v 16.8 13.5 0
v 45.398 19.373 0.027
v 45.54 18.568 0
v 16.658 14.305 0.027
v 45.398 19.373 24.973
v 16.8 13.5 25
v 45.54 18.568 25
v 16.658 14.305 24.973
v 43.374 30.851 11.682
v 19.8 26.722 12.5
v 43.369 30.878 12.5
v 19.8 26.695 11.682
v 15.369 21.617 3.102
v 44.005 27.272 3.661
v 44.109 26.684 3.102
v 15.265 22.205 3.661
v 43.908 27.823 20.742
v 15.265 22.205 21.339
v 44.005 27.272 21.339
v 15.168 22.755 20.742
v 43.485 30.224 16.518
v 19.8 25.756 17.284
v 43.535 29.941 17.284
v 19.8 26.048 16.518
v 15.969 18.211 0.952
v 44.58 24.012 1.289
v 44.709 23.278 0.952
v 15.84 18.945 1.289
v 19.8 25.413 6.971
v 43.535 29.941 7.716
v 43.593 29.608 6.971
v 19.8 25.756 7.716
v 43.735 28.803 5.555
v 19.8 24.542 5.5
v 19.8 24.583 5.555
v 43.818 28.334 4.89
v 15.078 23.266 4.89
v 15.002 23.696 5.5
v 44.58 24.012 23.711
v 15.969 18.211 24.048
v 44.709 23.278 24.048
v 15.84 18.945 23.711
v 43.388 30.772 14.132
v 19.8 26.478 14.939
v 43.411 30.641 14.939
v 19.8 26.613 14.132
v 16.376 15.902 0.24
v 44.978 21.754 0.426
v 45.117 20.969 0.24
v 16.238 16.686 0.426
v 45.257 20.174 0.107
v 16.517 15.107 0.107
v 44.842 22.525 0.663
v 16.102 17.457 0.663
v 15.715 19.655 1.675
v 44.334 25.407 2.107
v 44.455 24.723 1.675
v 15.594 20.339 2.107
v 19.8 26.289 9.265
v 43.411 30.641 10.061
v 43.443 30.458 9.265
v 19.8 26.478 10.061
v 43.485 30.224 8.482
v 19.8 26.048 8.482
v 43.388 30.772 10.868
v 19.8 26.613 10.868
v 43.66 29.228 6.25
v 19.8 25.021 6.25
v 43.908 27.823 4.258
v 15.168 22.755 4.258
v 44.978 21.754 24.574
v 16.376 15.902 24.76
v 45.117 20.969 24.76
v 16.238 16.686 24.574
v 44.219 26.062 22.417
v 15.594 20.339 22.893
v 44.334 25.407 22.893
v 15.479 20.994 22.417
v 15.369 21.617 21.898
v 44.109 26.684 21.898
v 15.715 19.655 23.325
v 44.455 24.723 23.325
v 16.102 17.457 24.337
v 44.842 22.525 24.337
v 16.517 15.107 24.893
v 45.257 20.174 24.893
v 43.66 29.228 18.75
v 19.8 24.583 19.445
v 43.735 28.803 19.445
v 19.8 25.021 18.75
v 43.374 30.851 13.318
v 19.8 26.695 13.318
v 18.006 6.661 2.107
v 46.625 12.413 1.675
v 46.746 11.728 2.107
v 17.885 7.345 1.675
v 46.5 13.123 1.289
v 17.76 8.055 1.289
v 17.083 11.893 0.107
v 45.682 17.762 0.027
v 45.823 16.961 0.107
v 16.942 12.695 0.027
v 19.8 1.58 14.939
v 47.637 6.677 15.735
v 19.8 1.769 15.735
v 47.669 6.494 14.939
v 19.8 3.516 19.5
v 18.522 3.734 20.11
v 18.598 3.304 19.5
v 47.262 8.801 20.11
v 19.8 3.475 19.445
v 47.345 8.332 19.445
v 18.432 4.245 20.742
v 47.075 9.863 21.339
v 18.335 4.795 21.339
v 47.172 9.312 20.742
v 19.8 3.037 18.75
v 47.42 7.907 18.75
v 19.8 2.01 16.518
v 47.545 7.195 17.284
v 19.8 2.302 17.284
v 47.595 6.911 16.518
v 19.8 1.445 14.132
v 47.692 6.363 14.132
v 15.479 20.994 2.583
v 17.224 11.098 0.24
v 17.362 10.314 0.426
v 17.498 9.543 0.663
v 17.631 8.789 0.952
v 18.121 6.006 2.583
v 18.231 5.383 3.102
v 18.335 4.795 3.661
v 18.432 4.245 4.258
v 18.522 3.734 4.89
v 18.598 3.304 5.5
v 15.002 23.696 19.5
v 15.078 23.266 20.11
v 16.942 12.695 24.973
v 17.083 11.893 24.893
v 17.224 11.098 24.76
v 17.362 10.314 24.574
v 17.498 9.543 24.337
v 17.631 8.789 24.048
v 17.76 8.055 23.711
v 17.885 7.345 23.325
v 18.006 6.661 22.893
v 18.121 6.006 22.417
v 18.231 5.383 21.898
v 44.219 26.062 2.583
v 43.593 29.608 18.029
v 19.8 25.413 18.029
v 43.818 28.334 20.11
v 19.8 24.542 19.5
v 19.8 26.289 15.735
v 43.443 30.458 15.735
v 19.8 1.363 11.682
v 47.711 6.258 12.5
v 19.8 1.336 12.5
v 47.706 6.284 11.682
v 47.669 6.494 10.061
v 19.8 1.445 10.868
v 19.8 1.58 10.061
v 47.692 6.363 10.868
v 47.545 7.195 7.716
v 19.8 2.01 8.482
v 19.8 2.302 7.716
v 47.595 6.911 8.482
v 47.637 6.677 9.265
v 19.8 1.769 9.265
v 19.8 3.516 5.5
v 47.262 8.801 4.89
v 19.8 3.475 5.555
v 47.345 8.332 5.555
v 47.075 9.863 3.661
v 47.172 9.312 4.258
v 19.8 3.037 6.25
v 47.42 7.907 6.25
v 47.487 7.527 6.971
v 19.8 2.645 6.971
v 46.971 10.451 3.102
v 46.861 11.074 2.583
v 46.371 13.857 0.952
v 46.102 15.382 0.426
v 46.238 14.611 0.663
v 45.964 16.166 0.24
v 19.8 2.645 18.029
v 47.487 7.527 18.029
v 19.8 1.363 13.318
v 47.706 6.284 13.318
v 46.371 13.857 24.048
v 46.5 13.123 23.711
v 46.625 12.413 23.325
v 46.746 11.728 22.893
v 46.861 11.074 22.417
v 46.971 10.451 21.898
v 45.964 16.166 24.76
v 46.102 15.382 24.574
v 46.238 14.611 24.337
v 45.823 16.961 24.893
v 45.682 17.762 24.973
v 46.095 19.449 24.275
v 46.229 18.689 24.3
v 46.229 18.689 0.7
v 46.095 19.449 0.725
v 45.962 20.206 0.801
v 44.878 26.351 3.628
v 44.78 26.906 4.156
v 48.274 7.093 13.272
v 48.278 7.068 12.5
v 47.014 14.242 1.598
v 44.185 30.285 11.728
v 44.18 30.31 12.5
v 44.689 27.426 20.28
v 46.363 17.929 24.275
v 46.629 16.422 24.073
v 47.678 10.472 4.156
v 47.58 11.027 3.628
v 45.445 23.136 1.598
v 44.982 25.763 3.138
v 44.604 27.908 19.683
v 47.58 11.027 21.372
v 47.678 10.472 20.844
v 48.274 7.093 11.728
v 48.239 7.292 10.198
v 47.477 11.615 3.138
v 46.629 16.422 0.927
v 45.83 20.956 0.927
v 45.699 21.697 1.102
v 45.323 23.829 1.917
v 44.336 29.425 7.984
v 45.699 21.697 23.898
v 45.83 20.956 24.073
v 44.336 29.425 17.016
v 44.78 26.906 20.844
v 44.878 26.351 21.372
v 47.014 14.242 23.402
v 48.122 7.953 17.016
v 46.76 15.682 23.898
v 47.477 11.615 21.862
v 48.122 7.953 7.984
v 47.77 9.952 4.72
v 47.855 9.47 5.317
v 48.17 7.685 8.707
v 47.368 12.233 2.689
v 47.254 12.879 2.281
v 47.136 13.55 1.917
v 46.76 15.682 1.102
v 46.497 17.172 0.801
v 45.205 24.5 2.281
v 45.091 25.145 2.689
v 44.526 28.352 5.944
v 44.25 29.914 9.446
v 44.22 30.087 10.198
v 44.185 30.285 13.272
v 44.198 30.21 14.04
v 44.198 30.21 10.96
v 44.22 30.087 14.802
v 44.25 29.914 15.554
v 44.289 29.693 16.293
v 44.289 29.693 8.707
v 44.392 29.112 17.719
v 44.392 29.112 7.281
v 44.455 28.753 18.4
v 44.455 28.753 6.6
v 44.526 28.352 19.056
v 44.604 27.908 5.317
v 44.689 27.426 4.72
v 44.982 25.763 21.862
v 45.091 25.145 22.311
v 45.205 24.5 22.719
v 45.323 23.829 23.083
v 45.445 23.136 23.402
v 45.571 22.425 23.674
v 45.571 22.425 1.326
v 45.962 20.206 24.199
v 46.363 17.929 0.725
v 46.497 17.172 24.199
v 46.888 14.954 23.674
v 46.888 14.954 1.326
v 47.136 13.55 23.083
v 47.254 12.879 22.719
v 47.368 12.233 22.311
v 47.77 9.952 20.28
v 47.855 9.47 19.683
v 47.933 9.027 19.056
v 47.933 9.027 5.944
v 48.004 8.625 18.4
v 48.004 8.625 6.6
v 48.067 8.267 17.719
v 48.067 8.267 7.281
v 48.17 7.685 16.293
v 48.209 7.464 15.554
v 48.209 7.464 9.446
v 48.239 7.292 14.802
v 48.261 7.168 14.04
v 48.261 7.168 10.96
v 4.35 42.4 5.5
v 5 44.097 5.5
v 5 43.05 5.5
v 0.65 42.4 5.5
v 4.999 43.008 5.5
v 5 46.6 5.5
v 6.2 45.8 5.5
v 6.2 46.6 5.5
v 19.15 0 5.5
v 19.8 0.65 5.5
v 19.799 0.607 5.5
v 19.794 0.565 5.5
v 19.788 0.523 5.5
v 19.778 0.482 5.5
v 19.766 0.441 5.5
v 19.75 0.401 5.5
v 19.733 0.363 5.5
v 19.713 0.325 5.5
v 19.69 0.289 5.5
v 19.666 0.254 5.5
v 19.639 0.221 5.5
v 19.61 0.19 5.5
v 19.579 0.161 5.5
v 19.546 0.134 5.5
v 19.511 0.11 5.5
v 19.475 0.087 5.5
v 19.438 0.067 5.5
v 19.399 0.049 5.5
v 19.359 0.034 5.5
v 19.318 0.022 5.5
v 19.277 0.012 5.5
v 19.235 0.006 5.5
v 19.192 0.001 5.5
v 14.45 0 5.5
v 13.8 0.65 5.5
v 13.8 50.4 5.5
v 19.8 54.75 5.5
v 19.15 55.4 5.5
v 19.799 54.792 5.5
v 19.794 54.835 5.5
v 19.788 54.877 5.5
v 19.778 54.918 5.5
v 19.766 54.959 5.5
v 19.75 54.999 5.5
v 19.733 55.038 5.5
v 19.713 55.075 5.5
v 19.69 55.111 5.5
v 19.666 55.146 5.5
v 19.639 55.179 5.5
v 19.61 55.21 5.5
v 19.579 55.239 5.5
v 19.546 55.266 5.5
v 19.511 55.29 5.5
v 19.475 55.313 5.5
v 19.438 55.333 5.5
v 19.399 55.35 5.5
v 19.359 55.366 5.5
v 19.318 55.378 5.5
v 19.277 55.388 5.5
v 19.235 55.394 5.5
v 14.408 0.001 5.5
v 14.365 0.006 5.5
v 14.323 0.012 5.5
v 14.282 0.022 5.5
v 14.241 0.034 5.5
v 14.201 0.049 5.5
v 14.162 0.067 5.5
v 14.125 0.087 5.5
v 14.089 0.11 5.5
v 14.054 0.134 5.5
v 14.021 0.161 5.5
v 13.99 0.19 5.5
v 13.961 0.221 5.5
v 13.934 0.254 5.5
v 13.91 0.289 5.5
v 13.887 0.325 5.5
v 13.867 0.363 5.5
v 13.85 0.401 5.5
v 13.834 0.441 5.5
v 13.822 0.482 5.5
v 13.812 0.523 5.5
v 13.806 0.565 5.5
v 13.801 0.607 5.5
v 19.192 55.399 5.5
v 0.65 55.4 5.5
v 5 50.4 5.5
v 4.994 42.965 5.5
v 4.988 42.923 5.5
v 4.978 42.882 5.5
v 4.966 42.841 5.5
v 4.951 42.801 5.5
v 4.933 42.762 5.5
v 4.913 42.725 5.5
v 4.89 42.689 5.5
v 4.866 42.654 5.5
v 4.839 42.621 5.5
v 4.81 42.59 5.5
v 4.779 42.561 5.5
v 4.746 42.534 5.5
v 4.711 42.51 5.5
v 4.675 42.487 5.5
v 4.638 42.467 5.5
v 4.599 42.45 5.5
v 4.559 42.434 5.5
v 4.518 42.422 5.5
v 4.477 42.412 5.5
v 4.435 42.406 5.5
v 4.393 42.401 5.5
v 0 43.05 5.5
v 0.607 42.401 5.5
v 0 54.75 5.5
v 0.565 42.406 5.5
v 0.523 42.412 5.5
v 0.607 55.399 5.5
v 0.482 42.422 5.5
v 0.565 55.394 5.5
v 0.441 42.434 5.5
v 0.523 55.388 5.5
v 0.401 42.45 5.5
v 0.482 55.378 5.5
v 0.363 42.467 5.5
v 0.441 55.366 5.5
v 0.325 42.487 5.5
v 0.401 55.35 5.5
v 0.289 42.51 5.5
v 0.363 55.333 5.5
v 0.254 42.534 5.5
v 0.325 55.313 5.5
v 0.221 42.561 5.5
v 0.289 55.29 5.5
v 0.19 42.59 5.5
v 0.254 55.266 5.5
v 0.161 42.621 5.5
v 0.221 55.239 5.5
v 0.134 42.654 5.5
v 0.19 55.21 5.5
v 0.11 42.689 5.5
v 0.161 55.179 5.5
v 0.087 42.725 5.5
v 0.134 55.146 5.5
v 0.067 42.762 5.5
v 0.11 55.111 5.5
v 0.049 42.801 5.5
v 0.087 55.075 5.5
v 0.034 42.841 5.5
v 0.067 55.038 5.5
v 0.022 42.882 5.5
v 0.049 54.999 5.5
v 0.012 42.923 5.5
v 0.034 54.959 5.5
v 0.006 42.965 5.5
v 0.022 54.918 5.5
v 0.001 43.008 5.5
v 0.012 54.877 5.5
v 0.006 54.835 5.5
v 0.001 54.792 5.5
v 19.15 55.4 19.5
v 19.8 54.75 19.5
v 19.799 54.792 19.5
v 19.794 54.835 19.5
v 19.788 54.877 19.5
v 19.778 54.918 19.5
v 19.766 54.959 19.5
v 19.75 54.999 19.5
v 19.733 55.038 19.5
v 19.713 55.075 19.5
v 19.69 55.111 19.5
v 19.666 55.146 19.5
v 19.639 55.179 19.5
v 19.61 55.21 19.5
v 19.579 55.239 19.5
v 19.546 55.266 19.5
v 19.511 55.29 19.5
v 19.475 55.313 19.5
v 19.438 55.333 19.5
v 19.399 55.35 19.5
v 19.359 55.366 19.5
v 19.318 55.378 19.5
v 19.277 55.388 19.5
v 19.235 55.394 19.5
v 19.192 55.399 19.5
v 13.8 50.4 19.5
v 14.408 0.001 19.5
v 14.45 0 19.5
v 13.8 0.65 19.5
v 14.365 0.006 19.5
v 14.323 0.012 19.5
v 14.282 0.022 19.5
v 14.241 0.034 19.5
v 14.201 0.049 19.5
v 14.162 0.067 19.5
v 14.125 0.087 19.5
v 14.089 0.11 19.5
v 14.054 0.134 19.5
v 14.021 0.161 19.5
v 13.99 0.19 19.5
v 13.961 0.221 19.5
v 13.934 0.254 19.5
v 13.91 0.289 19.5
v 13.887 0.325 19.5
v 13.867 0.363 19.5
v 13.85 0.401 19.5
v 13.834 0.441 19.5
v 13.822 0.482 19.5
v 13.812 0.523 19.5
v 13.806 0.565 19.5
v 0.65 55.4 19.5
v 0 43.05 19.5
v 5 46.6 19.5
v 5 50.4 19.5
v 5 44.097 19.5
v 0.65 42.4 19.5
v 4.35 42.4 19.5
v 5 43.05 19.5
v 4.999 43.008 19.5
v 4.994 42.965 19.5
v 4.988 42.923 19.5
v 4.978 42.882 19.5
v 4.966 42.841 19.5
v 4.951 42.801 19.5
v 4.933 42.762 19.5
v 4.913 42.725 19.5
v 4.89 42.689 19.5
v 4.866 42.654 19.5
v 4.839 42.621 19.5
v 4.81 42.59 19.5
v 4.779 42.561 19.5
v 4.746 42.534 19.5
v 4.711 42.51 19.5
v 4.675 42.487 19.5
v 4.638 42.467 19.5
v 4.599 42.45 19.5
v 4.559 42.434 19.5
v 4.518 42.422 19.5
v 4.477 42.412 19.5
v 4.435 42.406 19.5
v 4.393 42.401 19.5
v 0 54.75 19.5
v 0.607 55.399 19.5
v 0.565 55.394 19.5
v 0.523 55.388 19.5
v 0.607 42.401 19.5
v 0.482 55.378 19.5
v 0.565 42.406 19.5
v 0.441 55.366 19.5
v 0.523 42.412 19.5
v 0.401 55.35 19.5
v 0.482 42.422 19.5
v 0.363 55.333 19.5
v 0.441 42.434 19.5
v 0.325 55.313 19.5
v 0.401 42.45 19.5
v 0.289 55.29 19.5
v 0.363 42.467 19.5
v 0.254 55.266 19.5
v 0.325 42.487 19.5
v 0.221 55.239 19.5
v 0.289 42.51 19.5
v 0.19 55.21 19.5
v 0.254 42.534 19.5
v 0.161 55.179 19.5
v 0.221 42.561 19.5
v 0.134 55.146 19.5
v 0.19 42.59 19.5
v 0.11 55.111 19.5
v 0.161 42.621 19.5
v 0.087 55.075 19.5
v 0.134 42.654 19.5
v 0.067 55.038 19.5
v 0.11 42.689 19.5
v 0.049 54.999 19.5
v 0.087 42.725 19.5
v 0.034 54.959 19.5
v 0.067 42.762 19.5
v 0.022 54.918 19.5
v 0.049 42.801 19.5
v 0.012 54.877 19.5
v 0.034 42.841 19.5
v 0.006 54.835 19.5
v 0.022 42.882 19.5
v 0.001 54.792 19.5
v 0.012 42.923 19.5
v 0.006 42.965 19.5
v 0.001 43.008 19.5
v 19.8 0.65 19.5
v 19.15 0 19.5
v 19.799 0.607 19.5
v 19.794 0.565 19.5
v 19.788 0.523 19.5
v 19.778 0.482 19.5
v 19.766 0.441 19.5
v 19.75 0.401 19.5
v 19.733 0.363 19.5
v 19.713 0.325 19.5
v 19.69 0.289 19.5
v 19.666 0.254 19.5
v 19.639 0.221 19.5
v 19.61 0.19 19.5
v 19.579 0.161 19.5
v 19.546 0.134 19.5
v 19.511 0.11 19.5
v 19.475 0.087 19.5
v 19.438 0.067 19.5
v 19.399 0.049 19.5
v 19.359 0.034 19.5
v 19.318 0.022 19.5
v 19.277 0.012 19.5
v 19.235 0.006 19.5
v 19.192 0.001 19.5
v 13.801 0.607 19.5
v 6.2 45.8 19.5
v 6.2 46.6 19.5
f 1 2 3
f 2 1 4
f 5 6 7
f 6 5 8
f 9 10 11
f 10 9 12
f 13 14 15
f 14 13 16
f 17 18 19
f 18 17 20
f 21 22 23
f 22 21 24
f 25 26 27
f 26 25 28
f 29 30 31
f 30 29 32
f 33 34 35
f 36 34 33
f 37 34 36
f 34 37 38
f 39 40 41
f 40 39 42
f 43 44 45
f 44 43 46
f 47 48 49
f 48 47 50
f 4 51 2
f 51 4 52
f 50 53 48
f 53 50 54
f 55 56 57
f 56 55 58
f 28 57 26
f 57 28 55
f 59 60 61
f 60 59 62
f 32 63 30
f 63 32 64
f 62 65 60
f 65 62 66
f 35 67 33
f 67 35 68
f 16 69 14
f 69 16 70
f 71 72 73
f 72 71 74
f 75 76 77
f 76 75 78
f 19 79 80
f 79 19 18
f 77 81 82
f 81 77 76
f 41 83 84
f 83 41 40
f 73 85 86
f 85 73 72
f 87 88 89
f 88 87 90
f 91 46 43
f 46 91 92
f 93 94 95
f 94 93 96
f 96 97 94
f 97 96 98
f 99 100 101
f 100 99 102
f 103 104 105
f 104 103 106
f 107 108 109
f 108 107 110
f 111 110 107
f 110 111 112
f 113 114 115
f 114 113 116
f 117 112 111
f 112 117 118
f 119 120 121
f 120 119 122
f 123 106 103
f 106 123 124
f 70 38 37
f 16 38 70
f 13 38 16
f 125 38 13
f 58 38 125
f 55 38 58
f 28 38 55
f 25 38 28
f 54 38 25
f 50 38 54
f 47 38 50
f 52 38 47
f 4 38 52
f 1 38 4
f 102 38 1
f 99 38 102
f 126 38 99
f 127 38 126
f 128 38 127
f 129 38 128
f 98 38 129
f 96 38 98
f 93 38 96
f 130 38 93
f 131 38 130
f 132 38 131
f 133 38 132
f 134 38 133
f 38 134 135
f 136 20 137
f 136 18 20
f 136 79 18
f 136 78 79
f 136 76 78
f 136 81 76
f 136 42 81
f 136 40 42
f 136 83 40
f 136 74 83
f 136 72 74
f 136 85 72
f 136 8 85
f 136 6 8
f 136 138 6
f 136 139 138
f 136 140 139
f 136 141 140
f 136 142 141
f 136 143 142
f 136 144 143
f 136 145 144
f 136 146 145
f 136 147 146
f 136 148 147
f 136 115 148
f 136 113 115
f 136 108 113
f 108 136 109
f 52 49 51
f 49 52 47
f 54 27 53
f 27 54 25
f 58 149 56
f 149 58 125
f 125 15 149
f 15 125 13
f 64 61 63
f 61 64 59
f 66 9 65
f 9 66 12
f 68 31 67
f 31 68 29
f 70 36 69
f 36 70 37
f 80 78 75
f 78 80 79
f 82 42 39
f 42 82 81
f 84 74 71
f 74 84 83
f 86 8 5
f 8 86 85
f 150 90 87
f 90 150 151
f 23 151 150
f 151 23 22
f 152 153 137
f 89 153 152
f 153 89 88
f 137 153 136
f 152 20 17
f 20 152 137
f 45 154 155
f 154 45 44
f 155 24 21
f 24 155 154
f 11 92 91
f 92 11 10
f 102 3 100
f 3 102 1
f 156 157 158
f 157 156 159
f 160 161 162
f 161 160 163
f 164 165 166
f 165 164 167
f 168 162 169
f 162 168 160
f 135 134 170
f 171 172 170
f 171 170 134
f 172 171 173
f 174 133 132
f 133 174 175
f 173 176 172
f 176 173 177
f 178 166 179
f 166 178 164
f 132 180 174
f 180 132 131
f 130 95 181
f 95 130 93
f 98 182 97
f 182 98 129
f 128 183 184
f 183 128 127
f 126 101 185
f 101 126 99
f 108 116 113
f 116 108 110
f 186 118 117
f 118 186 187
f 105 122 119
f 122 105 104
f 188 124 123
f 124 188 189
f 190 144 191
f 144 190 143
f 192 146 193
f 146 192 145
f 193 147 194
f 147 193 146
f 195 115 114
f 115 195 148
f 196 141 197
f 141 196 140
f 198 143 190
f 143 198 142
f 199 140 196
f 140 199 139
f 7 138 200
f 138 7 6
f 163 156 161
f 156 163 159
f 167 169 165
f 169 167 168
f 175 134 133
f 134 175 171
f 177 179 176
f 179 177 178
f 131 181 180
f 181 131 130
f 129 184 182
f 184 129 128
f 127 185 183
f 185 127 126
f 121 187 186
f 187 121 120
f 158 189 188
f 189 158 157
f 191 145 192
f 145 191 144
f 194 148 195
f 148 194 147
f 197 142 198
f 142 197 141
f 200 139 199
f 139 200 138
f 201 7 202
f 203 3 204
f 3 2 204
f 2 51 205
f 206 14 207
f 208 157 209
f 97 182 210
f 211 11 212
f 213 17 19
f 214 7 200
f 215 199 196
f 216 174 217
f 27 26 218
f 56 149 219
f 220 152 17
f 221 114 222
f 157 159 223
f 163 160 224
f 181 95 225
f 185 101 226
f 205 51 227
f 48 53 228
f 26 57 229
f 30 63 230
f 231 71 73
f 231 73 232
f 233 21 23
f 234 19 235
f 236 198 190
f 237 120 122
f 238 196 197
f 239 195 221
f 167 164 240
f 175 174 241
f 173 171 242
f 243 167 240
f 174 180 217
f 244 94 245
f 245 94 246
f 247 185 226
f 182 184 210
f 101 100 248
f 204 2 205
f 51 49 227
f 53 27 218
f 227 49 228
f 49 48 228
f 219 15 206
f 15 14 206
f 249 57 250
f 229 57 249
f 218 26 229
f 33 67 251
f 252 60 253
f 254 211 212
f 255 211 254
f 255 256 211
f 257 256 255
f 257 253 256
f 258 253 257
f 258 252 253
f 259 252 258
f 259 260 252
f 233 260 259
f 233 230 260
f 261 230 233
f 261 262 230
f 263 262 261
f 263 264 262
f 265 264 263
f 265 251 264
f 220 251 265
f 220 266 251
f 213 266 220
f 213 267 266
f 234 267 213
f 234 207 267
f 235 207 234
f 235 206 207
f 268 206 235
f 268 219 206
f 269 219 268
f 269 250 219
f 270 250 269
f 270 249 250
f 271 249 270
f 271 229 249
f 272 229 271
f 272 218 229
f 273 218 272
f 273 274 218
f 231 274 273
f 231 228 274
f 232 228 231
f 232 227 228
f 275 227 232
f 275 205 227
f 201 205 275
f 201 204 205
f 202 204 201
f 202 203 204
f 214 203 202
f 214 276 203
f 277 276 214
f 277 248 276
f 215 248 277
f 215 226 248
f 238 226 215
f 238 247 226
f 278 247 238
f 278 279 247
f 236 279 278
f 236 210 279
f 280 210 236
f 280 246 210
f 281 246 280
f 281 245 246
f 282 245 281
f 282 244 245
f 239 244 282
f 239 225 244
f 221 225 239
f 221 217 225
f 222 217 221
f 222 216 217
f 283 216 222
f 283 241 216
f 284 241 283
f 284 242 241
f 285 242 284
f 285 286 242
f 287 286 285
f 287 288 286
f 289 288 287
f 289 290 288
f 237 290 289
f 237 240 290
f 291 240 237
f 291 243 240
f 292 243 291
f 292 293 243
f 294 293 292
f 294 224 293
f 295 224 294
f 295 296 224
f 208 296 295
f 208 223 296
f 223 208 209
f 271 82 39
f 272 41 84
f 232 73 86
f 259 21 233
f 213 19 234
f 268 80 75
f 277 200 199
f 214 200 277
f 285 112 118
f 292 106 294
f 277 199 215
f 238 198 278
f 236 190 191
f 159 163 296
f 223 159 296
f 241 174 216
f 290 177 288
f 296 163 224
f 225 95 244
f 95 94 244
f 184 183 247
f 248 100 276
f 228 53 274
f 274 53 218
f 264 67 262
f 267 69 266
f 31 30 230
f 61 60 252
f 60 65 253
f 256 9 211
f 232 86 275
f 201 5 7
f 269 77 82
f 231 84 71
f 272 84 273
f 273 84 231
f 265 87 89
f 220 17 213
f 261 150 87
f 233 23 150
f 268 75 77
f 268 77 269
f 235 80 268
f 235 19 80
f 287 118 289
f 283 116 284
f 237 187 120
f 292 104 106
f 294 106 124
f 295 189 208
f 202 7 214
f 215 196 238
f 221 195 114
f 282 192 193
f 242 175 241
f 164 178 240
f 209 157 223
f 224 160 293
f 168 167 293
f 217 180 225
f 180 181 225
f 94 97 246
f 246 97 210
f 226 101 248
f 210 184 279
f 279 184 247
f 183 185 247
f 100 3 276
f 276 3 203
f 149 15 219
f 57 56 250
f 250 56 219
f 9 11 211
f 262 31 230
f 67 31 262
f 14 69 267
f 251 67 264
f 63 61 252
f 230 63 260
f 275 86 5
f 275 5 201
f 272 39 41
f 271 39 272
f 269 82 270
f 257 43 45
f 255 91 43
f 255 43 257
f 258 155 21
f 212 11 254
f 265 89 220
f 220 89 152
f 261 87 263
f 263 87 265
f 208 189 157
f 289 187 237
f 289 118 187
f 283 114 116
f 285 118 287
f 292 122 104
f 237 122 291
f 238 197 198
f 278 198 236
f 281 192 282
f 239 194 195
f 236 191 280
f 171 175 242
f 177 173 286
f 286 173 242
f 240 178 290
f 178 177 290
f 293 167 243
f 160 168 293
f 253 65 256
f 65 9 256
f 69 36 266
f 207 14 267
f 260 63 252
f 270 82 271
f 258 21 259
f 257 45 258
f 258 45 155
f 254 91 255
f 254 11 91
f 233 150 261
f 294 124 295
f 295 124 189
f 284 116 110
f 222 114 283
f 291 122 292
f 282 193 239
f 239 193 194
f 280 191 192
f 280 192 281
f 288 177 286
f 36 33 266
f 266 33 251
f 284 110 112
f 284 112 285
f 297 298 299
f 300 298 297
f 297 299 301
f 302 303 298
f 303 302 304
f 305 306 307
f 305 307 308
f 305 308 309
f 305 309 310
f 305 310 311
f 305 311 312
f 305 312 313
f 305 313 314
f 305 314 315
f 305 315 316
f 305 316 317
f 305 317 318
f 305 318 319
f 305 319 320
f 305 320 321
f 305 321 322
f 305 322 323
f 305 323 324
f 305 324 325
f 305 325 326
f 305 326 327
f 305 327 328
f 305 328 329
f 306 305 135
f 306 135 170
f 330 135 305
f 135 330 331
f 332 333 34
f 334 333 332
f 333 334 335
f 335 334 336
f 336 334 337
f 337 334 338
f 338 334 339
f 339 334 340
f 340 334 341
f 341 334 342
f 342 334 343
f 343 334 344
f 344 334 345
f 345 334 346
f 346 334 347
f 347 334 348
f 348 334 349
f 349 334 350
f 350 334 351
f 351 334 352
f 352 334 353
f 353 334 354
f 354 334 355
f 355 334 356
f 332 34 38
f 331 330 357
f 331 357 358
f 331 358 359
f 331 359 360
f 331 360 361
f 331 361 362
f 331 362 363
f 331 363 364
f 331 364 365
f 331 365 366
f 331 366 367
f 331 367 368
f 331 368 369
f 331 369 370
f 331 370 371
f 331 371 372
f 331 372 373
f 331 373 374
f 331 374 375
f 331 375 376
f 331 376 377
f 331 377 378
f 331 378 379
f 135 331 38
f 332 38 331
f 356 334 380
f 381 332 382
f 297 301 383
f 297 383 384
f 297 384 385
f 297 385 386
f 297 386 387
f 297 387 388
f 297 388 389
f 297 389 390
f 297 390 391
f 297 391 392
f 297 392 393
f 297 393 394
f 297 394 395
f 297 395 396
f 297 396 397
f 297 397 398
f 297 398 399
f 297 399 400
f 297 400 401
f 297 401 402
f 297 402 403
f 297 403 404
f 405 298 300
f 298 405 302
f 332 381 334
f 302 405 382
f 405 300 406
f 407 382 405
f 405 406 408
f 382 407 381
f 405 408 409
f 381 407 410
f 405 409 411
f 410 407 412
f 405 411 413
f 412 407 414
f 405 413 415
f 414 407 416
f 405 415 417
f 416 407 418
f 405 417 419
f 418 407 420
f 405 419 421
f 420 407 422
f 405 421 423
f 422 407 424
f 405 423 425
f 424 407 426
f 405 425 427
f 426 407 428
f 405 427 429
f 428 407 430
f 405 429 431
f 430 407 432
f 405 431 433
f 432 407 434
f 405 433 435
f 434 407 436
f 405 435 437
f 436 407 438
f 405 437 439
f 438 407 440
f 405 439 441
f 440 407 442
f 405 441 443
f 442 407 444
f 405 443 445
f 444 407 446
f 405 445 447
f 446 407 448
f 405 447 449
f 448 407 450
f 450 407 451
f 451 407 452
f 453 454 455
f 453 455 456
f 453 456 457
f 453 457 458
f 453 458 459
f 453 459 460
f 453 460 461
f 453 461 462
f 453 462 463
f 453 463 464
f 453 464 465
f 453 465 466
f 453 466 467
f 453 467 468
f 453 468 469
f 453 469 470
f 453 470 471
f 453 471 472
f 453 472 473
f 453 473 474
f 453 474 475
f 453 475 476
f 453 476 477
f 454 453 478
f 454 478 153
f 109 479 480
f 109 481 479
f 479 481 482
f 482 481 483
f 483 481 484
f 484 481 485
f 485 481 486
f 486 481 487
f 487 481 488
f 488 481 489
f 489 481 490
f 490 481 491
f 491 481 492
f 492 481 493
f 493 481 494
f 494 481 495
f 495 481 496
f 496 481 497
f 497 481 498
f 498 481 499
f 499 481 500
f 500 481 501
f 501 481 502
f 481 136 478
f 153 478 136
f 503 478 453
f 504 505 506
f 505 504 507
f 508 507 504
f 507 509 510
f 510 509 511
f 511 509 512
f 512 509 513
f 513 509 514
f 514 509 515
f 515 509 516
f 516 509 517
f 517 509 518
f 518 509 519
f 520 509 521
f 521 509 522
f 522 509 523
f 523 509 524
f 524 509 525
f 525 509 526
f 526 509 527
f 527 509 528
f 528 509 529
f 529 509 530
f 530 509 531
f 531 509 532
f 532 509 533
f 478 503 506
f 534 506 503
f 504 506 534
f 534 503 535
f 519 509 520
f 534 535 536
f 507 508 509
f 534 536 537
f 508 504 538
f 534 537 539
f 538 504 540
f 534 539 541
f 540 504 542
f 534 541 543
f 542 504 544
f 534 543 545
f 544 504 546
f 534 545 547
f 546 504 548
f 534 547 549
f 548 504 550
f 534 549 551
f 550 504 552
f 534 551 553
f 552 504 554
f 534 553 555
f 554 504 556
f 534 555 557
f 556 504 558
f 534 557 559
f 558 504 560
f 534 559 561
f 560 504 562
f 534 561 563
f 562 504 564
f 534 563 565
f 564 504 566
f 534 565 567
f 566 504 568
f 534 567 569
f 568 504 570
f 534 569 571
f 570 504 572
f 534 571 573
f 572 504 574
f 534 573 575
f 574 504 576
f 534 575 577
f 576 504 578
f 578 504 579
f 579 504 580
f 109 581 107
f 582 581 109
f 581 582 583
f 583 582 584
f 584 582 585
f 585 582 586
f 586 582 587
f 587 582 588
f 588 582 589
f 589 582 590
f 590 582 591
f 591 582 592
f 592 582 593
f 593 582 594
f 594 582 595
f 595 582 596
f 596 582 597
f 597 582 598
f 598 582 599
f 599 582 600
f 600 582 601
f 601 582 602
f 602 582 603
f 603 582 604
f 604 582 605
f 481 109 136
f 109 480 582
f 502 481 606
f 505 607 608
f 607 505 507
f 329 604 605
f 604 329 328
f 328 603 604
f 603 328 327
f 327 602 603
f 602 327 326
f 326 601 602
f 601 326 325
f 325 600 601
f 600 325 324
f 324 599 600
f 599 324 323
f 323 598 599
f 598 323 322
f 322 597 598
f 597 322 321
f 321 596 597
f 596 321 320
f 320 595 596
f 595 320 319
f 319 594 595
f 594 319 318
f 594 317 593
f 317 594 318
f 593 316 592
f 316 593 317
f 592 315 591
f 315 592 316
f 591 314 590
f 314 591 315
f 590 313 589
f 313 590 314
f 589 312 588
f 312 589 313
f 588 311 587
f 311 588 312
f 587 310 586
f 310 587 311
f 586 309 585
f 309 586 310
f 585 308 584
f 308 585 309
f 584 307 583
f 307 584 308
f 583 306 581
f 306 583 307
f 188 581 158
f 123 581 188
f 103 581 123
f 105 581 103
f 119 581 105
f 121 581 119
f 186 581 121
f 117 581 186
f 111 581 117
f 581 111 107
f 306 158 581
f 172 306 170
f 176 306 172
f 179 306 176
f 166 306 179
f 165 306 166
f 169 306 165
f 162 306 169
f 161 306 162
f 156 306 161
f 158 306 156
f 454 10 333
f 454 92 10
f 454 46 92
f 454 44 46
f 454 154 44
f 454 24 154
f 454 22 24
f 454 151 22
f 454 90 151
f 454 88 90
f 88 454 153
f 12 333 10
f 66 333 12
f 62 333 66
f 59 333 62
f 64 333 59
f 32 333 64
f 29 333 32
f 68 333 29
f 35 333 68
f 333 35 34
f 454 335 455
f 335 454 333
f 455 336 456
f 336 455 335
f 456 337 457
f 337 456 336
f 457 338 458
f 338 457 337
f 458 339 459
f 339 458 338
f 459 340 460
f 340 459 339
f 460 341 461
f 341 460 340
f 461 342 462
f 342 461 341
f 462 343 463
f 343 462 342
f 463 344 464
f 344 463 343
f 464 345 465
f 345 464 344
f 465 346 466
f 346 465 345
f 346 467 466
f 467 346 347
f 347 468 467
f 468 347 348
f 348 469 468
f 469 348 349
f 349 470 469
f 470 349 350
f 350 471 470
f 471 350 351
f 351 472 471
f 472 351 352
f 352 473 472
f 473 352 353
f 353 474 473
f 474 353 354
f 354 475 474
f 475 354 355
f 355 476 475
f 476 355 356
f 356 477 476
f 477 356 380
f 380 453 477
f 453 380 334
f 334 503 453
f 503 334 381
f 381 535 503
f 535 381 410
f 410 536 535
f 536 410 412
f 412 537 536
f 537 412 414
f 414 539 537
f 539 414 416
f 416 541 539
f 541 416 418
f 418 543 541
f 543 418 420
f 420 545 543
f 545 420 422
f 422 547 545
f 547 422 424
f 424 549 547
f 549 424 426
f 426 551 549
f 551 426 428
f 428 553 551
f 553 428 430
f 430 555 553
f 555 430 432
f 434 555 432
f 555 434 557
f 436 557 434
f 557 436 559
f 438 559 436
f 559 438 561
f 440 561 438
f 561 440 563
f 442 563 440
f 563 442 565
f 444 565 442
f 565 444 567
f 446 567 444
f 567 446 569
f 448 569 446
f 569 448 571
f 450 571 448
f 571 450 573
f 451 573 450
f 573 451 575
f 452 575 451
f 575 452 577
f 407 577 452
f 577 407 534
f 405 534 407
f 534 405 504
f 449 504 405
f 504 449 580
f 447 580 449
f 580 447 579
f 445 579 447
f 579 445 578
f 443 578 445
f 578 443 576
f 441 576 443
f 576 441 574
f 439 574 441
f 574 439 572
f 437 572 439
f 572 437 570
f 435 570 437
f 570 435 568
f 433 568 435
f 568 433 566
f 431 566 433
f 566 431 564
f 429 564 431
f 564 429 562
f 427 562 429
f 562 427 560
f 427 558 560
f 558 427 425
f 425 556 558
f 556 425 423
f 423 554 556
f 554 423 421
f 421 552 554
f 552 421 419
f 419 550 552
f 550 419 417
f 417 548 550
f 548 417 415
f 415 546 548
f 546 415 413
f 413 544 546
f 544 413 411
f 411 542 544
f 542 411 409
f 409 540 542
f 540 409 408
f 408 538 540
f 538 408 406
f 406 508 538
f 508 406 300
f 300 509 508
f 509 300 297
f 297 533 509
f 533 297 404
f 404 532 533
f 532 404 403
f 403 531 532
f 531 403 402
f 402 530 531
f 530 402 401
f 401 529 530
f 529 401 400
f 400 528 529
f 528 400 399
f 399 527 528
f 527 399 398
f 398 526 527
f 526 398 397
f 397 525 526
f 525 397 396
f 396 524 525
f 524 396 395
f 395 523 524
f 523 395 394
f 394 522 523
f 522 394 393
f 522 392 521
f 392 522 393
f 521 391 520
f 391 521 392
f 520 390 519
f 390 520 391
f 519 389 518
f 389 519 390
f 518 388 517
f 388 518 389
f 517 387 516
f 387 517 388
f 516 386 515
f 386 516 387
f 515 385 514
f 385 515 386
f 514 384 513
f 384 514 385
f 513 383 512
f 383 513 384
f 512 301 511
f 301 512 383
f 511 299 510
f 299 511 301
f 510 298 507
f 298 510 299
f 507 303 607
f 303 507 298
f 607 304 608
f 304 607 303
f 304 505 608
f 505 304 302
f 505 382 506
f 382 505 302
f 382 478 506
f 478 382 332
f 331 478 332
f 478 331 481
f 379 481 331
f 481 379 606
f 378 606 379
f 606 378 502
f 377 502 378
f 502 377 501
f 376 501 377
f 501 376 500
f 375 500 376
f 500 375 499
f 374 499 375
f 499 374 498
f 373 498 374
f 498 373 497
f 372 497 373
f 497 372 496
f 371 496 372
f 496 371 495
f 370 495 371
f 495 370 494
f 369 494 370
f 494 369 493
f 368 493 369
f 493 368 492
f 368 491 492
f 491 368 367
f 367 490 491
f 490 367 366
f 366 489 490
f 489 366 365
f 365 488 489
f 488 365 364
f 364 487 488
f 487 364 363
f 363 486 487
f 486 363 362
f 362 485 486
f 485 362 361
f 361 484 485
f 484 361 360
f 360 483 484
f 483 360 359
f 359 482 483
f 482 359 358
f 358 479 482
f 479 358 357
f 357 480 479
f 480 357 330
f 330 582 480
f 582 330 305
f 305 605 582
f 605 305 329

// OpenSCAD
// V5: perno pieno diametro 25 mm, asse a +10 gradi verso l'alto.
// Incastro e dente identici alla V4. Unita mm.
altezza_profilo=50;
apertura_profilo=44;
profondita_bordo=8;
gioco=0.4;
larghezza=14;
dorso=6;
ponte=5;
ritorno=5;
lunghezza_ritorno=8;
dente=1.2;
quota_sotto_bordo=47;
luce_dente=0.4;
diametro_perno=25;
inclinazione=10; // positiva verso alto, rispetto all'orizzontale in uso
sporgenza=35; // massimo ingombro, inclusa la sezione inclinata
smusso_punta=0.7;
$fn=96;
a=gioco; b=a+dorso; c=-profondita_bordo-gioco; d=c-ritorno;
h=altezza_profilo+gioco;
r=diametro_perno/2;
radice_x=b-3;
radice_y=r+1;
lunghezza_perno=(sporgenza-radice_x-r*sin(inclinazione))/cos(inclinazione);
assert(inclinazione>0 && inclinazione<45);
assert(lunghezza_perno>smusso_punta);
module aggancio(){
 offset(r=0.65) offset(delta=-0.65) polygon([[a,0],[a,h],[c,h],[c,h-lunghezza_ritorno],[d,h-lunghezza_ritorno],[d,h+ponte],[b,h+ponte],[b,0]]);
 // Dente rivolto verso la faccia esterna: si porta sotto la piega interna.
 translate([c-0.35,0]) polygon([[0,quota_sotto_bordo-luce_dente-3],[dente+0.35,quota_sotto_bordo-luce_dente-0.8],[dente+0.35,quota_sotto_bordo-luce_dente],[0,quota_sotto_bordo-luce_dente]]);
}

module perno(){
 // Asse locale Z trasformato nel vettore [cos(angolo),sin(angolo),0].
 translate([radice_x,radice_y,larghezza/2])
 rotate([0,0,inclinazione]) rotate([0,90,0]) union(){
 cylinder(h=lunghezza_perno-smusso_punta,r=r);
 translate([0,0,lunghezza_perno-smusso_punta]) cylinder(h=smusso_punta,r1=r,r2=r-smusso_punta);
 }
}
// Posizione di stampa sul fianco. Supporti necessari sotto incastro e superfici curve.
translate([-d,0,max(0,r-larghezza/2)]) union(){
 linear_extrude(height=larghezza,convexity=10) aggancio();
 perno();
}
echo(diametro=diametro_perno,angolo=inclinazione,lunghezza_assiale=lunghezza_perno);
